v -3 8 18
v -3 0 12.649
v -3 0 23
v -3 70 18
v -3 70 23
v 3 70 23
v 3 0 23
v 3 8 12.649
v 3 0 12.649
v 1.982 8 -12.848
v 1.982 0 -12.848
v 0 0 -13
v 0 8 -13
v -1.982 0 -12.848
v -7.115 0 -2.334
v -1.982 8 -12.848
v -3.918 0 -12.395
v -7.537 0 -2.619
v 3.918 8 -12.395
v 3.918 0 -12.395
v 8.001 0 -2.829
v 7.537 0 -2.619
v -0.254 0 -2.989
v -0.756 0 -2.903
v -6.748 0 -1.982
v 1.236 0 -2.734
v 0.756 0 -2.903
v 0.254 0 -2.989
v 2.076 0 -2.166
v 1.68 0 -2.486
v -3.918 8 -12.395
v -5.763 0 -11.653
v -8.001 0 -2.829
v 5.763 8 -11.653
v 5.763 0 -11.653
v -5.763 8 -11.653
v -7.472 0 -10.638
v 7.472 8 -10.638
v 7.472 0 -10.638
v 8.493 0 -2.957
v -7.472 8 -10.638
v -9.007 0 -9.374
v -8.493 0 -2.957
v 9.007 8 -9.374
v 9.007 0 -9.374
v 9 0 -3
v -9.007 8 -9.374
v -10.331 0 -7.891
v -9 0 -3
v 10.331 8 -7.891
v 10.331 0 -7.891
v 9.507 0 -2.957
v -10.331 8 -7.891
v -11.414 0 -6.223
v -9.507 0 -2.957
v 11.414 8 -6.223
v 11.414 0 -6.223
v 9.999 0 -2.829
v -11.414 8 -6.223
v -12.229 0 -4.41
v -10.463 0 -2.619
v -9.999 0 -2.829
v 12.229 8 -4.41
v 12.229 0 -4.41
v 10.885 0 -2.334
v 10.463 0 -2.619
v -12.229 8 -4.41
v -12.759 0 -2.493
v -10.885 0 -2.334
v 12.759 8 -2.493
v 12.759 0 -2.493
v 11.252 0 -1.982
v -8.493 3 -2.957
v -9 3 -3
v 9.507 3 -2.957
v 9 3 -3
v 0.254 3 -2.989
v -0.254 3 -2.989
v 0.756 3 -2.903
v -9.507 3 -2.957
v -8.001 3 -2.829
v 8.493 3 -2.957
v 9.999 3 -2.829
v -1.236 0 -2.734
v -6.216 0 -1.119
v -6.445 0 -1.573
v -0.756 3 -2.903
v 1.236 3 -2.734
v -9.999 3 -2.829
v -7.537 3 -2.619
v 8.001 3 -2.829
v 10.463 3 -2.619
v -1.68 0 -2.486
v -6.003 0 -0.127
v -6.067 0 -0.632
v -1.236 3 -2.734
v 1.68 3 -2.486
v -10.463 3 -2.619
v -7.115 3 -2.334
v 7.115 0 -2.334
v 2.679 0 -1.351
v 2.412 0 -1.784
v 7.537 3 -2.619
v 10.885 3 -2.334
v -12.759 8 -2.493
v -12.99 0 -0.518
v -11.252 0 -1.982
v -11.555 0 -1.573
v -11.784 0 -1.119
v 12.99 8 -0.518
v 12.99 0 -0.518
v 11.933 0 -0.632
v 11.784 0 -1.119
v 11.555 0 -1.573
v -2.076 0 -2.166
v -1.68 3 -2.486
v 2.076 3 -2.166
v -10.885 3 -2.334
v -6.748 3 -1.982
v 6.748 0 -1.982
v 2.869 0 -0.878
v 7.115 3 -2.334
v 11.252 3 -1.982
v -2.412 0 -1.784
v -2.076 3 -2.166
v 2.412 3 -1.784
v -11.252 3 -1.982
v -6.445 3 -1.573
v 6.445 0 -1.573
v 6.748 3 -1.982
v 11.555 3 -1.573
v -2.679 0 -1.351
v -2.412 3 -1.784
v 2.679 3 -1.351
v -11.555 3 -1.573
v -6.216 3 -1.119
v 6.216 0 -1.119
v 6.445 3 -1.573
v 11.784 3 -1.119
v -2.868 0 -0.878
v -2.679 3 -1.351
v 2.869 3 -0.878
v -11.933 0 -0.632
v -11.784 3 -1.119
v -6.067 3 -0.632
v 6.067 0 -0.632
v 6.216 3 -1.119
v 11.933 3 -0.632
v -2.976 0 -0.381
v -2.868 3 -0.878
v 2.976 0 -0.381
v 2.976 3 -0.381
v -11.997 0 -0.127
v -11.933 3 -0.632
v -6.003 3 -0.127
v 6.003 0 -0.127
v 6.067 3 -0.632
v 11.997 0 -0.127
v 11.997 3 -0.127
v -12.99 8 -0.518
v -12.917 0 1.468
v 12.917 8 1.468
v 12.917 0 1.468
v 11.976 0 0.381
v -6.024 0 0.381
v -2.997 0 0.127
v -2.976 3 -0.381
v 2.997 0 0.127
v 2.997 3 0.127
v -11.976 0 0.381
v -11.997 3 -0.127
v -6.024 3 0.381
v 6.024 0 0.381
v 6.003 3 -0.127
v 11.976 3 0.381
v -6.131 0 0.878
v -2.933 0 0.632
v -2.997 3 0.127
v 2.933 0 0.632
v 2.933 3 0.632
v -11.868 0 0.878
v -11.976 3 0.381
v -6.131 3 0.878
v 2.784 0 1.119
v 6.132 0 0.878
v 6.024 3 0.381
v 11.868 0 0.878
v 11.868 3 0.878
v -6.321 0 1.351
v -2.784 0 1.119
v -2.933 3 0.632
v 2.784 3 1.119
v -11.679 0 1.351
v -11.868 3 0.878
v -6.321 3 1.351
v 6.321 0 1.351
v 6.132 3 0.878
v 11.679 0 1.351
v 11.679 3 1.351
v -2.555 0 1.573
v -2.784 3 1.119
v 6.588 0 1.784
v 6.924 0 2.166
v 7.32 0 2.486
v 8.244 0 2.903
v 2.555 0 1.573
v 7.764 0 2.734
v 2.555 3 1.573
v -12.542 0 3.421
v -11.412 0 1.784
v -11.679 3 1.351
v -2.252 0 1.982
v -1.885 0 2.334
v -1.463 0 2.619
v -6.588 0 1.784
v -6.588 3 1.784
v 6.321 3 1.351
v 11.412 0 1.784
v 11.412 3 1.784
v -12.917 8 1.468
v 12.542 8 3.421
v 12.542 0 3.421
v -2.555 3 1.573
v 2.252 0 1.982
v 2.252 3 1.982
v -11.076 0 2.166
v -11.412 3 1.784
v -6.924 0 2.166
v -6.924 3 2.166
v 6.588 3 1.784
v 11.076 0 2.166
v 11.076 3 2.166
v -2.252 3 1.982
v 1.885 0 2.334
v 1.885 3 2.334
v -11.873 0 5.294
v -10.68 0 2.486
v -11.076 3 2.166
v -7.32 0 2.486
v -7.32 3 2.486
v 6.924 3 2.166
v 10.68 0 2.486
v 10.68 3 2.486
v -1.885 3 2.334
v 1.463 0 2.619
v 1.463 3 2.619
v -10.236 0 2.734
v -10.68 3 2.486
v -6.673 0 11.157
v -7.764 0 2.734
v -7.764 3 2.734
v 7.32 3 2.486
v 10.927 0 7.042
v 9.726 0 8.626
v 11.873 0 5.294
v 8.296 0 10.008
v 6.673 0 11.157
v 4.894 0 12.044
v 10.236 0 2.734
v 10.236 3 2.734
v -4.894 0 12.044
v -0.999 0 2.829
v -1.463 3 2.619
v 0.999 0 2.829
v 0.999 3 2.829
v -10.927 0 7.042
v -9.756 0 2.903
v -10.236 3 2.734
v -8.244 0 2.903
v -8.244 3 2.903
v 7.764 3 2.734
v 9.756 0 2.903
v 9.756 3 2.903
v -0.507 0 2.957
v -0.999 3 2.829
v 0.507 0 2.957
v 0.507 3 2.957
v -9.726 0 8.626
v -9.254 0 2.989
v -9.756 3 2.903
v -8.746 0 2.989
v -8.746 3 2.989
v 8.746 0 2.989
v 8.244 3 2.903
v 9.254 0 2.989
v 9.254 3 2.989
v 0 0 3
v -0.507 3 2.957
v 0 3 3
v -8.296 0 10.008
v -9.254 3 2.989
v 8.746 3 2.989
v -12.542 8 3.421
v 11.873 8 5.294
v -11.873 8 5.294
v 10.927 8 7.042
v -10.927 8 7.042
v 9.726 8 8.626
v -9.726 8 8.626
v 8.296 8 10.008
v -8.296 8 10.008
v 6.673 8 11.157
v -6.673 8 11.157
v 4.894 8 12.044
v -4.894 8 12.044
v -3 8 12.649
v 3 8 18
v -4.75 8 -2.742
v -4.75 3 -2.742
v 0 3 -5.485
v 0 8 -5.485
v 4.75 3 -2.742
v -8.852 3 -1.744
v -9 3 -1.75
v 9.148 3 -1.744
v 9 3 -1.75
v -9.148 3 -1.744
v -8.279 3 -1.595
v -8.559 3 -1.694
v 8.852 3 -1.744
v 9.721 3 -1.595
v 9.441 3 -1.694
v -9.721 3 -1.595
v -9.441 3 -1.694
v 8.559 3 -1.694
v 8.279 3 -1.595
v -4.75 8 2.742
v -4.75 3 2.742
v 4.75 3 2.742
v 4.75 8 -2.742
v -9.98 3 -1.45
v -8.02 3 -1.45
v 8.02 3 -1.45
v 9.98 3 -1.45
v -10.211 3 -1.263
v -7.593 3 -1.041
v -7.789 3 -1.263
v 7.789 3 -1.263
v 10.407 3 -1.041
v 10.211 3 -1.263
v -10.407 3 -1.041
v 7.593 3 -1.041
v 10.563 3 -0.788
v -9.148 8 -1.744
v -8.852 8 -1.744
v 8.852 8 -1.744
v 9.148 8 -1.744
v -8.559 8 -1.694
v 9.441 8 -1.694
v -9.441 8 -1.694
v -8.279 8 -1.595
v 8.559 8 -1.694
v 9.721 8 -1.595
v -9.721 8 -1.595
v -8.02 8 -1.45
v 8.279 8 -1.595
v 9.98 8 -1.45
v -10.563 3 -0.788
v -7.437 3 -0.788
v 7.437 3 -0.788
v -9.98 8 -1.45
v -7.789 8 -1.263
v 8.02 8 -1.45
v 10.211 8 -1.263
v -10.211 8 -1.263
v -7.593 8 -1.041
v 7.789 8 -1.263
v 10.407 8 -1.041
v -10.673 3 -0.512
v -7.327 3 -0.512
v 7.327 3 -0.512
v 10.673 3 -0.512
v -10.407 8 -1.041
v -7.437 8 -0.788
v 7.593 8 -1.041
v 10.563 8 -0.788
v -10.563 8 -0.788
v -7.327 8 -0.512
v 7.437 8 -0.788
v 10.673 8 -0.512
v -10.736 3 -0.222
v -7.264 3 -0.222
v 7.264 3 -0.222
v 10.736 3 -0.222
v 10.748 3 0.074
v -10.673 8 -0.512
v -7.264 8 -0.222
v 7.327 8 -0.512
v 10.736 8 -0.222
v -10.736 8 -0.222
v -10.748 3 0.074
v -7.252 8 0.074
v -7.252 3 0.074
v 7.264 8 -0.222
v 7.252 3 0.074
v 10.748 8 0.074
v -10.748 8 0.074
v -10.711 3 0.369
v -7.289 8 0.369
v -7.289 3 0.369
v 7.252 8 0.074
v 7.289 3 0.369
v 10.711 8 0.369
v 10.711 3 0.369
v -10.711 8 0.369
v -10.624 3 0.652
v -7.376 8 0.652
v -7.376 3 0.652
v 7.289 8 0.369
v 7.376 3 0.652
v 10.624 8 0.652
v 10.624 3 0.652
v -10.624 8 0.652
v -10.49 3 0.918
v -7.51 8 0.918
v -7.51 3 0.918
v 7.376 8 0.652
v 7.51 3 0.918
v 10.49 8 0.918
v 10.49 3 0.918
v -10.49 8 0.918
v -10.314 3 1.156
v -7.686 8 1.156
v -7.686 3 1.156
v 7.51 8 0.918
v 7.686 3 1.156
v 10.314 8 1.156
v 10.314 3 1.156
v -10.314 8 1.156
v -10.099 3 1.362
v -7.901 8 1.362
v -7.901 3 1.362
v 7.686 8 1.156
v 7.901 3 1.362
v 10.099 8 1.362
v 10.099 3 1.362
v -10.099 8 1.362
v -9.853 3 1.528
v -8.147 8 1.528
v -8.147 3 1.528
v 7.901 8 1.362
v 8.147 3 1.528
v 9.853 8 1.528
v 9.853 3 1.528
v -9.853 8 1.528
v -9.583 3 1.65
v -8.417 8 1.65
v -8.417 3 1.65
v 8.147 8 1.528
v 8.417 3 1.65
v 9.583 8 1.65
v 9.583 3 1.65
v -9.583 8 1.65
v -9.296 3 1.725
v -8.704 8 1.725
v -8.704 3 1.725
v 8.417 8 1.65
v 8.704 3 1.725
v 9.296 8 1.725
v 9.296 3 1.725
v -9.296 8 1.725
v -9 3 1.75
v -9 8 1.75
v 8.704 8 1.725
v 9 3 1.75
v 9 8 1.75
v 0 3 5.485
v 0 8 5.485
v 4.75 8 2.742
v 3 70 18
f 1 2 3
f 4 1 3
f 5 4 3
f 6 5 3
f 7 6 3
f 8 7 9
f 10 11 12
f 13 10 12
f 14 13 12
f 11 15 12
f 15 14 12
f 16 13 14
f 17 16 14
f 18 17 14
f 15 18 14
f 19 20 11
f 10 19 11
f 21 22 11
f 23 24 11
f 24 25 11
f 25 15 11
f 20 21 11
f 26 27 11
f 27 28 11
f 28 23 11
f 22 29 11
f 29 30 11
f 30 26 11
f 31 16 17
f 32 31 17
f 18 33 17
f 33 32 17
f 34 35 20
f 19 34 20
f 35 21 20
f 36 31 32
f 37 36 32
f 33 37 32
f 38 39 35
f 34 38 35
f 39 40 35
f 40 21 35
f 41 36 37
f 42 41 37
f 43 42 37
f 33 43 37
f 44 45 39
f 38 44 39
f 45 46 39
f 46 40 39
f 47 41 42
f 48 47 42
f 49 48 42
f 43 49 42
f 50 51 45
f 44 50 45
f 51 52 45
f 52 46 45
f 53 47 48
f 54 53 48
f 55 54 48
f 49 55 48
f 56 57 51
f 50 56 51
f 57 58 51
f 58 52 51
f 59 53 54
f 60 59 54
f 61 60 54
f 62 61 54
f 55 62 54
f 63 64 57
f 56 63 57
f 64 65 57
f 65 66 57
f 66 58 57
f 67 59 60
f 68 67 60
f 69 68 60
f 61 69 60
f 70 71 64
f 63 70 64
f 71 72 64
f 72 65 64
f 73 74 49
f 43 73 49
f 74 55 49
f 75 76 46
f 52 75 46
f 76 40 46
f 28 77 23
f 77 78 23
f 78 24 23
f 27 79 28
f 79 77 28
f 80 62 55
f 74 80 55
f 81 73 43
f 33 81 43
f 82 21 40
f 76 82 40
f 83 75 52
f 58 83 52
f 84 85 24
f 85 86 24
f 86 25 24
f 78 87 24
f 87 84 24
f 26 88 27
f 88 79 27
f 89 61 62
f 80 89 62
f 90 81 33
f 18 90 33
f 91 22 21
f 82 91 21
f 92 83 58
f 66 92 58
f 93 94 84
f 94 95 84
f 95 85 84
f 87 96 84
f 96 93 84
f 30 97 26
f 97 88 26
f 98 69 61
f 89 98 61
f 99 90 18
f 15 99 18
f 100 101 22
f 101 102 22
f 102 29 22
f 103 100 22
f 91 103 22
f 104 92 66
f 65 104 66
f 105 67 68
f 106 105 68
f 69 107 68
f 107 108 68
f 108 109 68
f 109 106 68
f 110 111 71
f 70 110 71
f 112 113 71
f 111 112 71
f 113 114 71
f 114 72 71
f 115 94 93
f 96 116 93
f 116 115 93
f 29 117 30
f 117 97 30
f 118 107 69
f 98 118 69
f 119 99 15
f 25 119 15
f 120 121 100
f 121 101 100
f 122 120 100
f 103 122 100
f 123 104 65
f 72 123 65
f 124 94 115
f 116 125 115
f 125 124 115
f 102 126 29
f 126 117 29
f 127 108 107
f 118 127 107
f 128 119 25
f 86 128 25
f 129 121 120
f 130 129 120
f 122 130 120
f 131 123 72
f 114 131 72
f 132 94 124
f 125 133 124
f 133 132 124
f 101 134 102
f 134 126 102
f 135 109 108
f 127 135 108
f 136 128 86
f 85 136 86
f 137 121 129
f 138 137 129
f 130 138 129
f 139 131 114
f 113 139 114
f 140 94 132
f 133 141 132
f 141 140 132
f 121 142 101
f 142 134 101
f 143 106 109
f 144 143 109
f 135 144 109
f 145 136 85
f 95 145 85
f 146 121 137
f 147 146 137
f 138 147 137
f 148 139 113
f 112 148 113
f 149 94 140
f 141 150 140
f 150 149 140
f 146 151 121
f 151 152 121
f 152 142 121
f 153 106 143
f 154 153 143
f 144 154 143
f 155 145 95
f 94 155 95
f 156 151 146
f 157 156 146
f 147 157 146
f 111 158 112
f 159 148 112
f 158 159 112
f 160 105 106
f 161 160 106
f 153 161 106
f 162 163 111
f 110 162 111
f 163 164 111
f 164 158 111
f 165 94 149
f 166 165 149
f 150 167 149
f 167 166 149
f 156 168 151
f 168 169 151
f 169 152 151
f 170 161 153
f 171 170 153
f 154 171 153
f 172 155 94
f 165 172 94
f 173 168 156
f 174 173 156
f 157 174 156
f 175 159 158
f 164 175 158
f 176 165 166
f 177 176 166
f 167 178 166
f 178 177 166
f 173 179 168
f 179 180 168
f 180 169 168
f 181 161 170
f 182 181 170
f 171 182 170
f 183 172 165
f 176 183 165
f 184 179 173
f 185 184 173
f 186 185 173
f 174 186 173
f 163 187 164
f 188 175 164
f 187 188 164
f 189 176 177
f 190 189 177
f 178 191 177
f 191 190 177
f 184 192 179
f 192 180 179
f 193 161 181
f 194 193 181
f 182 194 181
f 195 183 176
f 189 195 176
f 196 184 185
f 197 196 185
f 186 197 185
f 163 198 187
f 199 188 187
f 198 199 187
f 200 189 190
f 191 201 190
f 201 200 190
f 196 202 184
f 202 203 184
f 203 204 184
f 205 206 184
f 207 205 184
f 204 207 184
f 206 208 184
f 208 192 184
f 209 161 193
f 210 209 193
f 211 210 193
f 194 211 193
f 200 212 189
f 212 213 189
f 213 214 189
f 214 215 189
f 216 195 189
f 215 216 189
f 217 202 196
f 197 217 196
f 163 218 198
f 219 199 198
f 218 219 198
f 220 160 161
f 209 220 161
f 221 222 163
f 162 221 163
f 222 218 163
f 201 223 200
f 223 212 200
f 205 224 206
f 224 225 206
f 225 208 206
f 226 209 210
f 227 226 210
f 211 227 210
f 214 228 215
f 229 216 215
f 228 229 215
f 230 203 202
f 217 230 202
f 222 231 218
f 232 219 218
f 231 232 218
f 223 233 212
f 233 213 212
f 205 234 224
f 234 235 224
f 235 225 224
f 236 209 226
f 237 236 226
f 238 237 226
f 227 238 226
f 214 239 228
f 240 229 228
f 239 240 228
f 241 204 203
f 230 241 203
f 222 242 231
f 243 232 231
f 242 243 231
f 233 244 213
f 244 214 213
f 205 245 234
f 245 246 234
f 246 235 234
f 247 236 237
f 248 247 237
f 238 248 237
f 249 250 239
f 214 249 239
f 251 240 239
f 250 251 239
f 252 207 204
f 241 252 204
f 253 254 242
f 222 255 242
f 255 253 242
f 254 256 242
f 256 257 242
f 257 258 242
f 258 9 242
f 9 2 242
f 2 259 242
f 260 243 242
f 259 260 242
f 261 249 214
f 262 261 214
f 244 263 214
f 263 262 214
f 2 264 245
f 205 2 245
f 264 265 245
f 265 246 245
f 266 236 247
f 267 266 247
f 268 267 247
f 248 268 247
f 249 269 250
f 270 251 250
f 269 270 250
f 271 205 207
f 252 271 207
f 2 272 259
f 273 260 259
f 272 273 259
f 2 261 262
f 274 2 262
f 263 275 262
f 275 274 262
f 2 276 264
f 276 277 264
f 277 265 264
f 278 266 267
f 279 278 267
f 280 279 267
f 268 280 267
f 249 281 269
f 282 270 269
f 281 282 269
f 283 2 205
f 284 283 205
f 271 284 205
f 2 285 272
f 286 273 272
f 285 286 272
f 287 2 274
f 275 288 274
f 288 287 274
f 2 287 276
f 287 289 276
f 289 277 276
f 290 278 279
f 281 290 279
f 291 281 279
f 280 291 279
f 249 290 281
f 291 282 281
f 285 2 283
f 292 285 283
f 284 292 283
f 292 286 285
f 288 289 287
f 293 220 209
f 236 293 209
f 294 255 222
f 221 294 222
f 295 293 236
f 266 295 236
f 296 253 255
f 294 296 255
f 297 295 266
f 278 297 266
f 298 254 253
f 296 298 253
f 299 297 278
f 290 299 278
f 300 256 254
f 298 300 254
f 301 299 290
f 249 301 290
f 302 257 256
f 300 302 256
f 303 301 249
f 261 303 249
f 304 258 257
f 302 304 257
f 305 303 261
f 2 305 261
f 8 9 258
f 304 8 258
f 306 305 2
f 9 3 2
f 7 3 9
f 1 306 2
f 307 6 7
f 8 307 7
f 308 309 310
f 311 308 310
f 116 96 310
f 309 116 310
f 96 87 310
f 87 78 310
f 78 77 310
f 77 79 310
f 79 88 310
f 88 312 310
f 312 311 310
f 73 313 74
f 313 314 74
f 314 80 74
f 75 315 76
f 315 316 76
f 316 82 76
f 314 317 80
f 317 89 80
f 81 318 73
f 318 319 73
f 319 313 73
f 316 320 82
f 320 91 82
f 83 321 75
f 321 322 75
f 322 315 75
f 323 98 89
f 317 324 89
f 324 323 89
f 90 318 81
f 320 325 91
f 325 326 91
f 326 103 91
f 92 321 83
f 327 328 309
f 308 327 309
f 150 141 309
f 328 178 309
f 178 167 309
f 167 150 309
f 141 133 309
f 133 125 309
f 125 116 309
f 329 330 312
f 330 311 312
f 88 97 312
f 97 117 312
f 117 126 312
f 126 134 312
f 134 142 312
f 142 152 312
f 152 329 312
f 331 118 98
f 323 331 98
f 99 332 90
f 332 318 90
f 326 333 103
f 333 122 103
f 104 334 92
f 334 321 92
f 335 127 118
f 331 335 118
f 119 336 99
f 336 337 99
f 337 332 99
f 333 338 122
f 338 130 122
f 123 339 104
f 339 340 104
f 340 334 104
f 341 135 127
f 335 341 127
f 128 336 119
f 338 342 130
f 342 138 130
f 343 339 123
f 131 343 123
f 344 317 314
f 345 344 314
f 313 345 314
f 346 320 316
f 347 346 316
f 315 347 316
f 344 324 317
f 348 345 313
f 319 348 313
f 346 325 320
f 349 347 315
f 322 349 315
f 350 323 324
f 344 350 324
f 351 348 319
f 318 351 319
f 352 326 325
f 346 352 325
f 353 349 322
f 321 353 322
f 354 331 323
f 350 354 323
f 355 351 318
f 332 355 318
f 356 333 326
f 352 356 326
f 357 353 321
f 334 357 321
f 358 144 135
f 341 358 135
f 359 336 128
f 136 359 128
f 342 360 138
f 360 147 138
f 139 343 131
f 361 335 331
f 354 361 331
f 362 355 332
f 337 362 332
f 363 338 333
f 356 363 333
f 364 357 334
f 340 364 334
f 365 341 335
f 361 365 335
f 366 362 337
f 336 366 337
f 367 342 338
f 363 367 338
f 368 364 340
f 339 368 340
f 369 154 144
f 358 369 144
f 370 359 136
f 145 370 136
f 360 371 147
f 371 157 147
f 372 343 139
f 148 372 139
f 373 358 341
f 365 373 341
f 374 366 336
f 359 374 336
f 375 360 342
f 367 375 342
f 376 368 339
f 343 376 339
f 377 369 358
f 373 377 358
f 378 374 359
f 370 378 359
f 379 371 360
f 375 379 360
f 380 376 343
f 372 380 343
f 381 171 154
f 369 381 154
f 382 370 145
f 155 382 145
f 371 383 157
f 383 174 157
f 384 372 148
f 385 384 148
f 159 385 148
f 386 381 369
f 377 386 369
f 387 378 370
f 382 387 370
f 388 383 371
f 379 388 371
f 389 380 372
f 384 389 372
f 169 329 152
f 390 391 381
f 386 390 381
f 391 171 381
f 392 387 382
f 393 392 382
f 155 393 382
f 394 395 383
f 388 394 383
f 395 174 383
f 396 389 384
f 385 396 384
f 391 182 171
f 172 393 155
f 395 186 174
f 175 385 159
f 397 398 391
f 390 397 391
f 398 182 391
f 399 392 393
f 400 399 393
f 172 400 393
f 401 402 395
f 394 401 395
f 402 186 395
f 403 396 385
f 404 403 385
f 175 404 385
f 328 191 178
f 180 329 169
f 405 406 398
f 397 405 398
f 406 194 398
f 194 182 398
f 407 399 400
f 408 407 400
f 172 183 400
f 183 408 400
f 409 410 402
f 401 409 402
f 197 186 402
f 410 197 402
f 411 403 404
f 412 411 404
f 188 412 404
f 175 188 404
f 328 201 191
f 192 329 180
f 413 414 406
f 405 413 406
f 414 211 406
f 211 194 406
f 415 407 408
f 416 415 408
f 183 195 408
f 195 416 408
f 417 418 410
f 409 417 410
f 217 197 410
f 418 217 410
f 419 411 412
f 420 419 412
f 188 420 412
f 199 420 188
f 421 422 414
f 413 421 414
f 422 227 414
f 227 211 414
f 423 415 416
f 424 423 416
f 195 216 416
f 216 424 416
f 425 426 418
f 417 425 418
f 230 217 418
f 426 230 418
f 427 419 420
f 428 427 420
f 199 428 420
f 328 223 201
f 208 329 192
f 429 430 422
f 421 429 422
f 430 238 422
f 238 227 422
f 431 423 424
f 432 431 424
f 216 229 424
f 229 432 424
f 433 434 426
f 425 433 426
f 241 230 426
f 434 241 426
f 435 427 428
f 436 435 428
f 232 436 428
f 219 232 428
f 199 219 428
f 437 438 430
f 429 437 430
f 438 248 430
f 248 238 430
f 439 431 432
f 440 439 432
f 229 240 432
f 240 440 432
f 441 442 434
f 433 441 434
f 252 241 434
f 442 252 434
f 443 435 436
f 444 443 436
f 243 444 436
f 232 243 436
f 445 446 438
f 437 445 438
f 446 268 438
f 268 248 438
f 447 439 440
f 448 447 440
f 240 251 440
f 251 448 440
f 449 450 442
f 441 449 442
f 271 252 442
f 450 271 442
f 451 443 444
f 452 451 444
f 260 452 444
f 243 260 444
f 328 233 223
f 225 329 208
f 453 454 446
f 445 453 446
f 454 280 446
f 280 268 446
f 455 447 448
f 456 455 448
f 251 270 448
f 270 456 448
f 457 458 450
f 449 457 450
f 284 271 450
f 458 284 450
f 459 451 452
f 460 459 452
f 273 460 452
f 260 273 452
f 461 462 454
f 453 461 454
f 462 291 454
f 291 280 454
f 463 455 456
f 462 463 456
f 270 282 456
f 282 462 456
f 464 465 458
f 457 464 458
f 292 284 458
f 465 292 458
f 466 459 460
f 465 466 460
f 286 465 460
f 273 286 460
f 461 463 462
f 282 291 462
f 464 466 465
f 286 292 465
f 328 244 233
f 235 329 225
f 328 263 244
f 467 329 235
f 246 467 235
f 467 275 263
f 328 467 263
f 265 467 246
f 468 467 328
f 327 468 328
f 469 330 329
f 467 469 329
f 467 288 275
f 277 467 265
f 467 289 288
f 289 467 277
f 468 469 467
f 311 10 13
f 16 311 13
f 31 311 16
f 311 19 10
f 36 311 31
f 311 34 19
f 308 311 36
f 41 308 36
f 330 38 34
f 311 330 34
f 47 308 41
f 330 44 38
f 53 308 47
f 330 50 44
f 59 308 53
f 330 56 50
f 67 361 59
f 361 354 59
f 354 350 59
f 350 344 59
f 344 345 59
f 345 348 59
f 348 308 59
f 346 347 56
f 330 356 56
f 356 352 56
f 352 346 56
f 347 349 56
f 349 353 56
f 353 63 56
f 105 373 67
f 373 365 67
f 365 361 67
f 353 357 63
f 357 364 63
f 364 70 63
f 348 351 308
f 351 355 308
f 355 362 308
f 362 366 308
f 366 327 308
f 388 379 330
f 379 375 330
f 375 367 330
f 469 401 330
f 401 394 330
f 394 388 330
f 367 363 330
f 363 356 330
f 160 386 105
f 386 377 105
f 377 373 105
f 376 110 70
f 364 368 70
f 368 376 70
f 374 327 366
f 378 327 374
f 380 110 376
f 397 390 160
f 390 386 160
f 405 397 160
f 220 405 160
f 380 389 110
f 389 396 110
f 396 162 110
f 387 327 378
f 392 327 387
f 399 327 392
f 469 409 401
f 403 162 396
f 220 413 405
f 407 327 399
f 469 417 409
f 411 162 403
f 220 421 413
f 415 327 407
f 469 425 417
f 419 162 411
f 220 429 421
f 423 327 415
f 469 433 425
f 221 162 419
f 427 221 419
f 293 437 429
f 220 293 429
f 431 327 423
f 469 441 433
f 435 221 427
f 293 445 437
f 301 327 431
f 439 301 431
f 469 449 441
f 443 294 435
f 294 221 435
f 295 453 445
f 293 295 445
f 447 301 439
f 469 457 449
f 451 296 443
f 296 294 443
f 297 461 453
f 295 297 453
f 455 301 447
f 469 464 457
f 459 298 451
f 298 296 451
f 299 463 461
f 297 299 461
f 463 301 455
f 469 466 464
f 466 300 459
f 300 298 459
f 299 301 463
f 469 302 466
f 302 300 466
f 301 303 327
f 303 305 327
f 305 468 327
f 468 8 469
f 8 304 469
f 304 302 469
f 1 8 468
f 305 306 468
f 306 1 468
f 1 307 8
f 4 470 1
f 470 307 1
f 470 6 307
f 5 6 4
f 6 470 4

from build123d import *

# Parameters (mm, degrees)
SKETCH1_R           = 13
BOSS_EXTRUDE1_DEPTH = 8
CUT_EXTRUDE1_DEPTH  = 5
SKETCH3_R           = 1.75
CUT_EXTRUDE2_DEPTH  = 21.049937656
SKETCH4_R           = 3
CUT_EXTRUDE3_DEPTH  = 5
SKETCH6_R           = 3
CUT_EXTRUDE4_DEPTH  = 3
SKETCH7_R           = 3
CUT_EXTRUDE5_DEPTH  = 3
SKETCH5_W           = 8
SKETCH5_H           = 6
BOSS_EXTRUDE2_DEPTH = 5
SKETCH8_W           = 6
SKETCH8_H           = 70
BOSS_EXTRUDE3_DEPTH = 5


with BuildPart() as part:
    # Sketch1 → Boss-Extrude1 (new body)
    with BuildSketch(Plane(origin=(0, 0, 0), x_dir=(1, 0, 0), z_dir=(0, 1, 0))):
        with Locations(Location((0, 0, 0), (0, 0, 270))):
            Circle(SKETCH1_R)
    extrude(amount=BOSS_EXTRUDE1_DEPTH)

    # Sketch2 → Cut-Extrude1 (cut)
    with BuildSketch(Plane(origin=(0, 8, 0), x_dir=(1, 0, 0), z_dir=(0, 1, 0))):
        Polygon((0, 5.484827557), (-4.75, 2.742413779), (-4.75, -2.742413779), (0, -5.484827557), (4.75, -2.742413779), (4.75, 2.742413779), align=None)
    extrude(amount=-CUT_EXTRUDE1_DEPTH, mode=Mode.SUBTRACT)

    # Sketch3 → Cut-Extrude2 (cut, through all)
    with BuildSketch(Plane(origin=(0, 8, 0), x_dir=(1, 0, 0), z_dir=(0, 1, 0))):
        with Locations(Location((9, 0, 0), (0, 0, 270))):
            Circle(SKETCH3_R)
    cut_extrude2 = extrude(amount=-CUT_EXTRUDE2_DEPTH, mode=Mode.SUBTRACT)

    # Mirror1: Cut-Extrude2 across plane
    add(cut_extrude2.mirror(Plane(origin=(0, 0, 0), x_dir=(0, 0, 1), z_dir=(1, 0, 0))), mode=Mode.SUBTRACT)

    # Sketch4 → Cut-Extrude3 (cut)
    with BuildSketch(Plane(origin=(0, 3, 0), x_dir=(1, 0, 0), z_dir=(0, 1, 0))):
        with Locations(Location((0, 0, 0), (0, 0, 270))):
            Circle(SKETCH4_R)
    extrude(amount=-CUT_EXTRUDE3_DEPTH, mode=Mode.SUBTRACT)

    # Sketch6 → Cut-Extrude4 (cut)
    with BuildSketch(Plane.XZ):
        with Locations(Location((9, 0, 0), (0, 0, 270))):
            Circle(SKETCH6_R)
    extrude(amount=-CUT_EXTRUDE4_DEPTH, mode=Mode.SUBTRACT)

    # Sketch7 → Cut-Extrude5 (cut)
    with BuildSketch(Plane.XZ):
        with Locations(Location((-9, 0, 0), (0, 0, 270))):
            Circle(SKETCH7_R)
    extrude(amount=-CUT_EXTRUDE5_DEPTH, mode=Mode.SUBTRACT)

    # Sketch5 → Boss-Extrude2 (add, symmetric)
    with BuildSketch(Plane(origin=(0, 0, 13), x_dir=(0, -1, 0), z_dir=(0, 0, 1))):
        with Locations((-4, 0)):
            Rectangle(SKETCH5_W, SKETCH5_H)
    extrude(amount=BOSS_EXTRUDE2_DEPTH, both=True)

    # Sketch8 → Boss-Extrude3 (add)
    with BuildSketch(Plane.XY.offset(18)):
        with Locations((0, 35)):
            Rectangle(SKETCH8_W, SKETCH8_H)
    extrude(amount=BOSS_EXTRUDE3_DEPTH)


solid = part.part
